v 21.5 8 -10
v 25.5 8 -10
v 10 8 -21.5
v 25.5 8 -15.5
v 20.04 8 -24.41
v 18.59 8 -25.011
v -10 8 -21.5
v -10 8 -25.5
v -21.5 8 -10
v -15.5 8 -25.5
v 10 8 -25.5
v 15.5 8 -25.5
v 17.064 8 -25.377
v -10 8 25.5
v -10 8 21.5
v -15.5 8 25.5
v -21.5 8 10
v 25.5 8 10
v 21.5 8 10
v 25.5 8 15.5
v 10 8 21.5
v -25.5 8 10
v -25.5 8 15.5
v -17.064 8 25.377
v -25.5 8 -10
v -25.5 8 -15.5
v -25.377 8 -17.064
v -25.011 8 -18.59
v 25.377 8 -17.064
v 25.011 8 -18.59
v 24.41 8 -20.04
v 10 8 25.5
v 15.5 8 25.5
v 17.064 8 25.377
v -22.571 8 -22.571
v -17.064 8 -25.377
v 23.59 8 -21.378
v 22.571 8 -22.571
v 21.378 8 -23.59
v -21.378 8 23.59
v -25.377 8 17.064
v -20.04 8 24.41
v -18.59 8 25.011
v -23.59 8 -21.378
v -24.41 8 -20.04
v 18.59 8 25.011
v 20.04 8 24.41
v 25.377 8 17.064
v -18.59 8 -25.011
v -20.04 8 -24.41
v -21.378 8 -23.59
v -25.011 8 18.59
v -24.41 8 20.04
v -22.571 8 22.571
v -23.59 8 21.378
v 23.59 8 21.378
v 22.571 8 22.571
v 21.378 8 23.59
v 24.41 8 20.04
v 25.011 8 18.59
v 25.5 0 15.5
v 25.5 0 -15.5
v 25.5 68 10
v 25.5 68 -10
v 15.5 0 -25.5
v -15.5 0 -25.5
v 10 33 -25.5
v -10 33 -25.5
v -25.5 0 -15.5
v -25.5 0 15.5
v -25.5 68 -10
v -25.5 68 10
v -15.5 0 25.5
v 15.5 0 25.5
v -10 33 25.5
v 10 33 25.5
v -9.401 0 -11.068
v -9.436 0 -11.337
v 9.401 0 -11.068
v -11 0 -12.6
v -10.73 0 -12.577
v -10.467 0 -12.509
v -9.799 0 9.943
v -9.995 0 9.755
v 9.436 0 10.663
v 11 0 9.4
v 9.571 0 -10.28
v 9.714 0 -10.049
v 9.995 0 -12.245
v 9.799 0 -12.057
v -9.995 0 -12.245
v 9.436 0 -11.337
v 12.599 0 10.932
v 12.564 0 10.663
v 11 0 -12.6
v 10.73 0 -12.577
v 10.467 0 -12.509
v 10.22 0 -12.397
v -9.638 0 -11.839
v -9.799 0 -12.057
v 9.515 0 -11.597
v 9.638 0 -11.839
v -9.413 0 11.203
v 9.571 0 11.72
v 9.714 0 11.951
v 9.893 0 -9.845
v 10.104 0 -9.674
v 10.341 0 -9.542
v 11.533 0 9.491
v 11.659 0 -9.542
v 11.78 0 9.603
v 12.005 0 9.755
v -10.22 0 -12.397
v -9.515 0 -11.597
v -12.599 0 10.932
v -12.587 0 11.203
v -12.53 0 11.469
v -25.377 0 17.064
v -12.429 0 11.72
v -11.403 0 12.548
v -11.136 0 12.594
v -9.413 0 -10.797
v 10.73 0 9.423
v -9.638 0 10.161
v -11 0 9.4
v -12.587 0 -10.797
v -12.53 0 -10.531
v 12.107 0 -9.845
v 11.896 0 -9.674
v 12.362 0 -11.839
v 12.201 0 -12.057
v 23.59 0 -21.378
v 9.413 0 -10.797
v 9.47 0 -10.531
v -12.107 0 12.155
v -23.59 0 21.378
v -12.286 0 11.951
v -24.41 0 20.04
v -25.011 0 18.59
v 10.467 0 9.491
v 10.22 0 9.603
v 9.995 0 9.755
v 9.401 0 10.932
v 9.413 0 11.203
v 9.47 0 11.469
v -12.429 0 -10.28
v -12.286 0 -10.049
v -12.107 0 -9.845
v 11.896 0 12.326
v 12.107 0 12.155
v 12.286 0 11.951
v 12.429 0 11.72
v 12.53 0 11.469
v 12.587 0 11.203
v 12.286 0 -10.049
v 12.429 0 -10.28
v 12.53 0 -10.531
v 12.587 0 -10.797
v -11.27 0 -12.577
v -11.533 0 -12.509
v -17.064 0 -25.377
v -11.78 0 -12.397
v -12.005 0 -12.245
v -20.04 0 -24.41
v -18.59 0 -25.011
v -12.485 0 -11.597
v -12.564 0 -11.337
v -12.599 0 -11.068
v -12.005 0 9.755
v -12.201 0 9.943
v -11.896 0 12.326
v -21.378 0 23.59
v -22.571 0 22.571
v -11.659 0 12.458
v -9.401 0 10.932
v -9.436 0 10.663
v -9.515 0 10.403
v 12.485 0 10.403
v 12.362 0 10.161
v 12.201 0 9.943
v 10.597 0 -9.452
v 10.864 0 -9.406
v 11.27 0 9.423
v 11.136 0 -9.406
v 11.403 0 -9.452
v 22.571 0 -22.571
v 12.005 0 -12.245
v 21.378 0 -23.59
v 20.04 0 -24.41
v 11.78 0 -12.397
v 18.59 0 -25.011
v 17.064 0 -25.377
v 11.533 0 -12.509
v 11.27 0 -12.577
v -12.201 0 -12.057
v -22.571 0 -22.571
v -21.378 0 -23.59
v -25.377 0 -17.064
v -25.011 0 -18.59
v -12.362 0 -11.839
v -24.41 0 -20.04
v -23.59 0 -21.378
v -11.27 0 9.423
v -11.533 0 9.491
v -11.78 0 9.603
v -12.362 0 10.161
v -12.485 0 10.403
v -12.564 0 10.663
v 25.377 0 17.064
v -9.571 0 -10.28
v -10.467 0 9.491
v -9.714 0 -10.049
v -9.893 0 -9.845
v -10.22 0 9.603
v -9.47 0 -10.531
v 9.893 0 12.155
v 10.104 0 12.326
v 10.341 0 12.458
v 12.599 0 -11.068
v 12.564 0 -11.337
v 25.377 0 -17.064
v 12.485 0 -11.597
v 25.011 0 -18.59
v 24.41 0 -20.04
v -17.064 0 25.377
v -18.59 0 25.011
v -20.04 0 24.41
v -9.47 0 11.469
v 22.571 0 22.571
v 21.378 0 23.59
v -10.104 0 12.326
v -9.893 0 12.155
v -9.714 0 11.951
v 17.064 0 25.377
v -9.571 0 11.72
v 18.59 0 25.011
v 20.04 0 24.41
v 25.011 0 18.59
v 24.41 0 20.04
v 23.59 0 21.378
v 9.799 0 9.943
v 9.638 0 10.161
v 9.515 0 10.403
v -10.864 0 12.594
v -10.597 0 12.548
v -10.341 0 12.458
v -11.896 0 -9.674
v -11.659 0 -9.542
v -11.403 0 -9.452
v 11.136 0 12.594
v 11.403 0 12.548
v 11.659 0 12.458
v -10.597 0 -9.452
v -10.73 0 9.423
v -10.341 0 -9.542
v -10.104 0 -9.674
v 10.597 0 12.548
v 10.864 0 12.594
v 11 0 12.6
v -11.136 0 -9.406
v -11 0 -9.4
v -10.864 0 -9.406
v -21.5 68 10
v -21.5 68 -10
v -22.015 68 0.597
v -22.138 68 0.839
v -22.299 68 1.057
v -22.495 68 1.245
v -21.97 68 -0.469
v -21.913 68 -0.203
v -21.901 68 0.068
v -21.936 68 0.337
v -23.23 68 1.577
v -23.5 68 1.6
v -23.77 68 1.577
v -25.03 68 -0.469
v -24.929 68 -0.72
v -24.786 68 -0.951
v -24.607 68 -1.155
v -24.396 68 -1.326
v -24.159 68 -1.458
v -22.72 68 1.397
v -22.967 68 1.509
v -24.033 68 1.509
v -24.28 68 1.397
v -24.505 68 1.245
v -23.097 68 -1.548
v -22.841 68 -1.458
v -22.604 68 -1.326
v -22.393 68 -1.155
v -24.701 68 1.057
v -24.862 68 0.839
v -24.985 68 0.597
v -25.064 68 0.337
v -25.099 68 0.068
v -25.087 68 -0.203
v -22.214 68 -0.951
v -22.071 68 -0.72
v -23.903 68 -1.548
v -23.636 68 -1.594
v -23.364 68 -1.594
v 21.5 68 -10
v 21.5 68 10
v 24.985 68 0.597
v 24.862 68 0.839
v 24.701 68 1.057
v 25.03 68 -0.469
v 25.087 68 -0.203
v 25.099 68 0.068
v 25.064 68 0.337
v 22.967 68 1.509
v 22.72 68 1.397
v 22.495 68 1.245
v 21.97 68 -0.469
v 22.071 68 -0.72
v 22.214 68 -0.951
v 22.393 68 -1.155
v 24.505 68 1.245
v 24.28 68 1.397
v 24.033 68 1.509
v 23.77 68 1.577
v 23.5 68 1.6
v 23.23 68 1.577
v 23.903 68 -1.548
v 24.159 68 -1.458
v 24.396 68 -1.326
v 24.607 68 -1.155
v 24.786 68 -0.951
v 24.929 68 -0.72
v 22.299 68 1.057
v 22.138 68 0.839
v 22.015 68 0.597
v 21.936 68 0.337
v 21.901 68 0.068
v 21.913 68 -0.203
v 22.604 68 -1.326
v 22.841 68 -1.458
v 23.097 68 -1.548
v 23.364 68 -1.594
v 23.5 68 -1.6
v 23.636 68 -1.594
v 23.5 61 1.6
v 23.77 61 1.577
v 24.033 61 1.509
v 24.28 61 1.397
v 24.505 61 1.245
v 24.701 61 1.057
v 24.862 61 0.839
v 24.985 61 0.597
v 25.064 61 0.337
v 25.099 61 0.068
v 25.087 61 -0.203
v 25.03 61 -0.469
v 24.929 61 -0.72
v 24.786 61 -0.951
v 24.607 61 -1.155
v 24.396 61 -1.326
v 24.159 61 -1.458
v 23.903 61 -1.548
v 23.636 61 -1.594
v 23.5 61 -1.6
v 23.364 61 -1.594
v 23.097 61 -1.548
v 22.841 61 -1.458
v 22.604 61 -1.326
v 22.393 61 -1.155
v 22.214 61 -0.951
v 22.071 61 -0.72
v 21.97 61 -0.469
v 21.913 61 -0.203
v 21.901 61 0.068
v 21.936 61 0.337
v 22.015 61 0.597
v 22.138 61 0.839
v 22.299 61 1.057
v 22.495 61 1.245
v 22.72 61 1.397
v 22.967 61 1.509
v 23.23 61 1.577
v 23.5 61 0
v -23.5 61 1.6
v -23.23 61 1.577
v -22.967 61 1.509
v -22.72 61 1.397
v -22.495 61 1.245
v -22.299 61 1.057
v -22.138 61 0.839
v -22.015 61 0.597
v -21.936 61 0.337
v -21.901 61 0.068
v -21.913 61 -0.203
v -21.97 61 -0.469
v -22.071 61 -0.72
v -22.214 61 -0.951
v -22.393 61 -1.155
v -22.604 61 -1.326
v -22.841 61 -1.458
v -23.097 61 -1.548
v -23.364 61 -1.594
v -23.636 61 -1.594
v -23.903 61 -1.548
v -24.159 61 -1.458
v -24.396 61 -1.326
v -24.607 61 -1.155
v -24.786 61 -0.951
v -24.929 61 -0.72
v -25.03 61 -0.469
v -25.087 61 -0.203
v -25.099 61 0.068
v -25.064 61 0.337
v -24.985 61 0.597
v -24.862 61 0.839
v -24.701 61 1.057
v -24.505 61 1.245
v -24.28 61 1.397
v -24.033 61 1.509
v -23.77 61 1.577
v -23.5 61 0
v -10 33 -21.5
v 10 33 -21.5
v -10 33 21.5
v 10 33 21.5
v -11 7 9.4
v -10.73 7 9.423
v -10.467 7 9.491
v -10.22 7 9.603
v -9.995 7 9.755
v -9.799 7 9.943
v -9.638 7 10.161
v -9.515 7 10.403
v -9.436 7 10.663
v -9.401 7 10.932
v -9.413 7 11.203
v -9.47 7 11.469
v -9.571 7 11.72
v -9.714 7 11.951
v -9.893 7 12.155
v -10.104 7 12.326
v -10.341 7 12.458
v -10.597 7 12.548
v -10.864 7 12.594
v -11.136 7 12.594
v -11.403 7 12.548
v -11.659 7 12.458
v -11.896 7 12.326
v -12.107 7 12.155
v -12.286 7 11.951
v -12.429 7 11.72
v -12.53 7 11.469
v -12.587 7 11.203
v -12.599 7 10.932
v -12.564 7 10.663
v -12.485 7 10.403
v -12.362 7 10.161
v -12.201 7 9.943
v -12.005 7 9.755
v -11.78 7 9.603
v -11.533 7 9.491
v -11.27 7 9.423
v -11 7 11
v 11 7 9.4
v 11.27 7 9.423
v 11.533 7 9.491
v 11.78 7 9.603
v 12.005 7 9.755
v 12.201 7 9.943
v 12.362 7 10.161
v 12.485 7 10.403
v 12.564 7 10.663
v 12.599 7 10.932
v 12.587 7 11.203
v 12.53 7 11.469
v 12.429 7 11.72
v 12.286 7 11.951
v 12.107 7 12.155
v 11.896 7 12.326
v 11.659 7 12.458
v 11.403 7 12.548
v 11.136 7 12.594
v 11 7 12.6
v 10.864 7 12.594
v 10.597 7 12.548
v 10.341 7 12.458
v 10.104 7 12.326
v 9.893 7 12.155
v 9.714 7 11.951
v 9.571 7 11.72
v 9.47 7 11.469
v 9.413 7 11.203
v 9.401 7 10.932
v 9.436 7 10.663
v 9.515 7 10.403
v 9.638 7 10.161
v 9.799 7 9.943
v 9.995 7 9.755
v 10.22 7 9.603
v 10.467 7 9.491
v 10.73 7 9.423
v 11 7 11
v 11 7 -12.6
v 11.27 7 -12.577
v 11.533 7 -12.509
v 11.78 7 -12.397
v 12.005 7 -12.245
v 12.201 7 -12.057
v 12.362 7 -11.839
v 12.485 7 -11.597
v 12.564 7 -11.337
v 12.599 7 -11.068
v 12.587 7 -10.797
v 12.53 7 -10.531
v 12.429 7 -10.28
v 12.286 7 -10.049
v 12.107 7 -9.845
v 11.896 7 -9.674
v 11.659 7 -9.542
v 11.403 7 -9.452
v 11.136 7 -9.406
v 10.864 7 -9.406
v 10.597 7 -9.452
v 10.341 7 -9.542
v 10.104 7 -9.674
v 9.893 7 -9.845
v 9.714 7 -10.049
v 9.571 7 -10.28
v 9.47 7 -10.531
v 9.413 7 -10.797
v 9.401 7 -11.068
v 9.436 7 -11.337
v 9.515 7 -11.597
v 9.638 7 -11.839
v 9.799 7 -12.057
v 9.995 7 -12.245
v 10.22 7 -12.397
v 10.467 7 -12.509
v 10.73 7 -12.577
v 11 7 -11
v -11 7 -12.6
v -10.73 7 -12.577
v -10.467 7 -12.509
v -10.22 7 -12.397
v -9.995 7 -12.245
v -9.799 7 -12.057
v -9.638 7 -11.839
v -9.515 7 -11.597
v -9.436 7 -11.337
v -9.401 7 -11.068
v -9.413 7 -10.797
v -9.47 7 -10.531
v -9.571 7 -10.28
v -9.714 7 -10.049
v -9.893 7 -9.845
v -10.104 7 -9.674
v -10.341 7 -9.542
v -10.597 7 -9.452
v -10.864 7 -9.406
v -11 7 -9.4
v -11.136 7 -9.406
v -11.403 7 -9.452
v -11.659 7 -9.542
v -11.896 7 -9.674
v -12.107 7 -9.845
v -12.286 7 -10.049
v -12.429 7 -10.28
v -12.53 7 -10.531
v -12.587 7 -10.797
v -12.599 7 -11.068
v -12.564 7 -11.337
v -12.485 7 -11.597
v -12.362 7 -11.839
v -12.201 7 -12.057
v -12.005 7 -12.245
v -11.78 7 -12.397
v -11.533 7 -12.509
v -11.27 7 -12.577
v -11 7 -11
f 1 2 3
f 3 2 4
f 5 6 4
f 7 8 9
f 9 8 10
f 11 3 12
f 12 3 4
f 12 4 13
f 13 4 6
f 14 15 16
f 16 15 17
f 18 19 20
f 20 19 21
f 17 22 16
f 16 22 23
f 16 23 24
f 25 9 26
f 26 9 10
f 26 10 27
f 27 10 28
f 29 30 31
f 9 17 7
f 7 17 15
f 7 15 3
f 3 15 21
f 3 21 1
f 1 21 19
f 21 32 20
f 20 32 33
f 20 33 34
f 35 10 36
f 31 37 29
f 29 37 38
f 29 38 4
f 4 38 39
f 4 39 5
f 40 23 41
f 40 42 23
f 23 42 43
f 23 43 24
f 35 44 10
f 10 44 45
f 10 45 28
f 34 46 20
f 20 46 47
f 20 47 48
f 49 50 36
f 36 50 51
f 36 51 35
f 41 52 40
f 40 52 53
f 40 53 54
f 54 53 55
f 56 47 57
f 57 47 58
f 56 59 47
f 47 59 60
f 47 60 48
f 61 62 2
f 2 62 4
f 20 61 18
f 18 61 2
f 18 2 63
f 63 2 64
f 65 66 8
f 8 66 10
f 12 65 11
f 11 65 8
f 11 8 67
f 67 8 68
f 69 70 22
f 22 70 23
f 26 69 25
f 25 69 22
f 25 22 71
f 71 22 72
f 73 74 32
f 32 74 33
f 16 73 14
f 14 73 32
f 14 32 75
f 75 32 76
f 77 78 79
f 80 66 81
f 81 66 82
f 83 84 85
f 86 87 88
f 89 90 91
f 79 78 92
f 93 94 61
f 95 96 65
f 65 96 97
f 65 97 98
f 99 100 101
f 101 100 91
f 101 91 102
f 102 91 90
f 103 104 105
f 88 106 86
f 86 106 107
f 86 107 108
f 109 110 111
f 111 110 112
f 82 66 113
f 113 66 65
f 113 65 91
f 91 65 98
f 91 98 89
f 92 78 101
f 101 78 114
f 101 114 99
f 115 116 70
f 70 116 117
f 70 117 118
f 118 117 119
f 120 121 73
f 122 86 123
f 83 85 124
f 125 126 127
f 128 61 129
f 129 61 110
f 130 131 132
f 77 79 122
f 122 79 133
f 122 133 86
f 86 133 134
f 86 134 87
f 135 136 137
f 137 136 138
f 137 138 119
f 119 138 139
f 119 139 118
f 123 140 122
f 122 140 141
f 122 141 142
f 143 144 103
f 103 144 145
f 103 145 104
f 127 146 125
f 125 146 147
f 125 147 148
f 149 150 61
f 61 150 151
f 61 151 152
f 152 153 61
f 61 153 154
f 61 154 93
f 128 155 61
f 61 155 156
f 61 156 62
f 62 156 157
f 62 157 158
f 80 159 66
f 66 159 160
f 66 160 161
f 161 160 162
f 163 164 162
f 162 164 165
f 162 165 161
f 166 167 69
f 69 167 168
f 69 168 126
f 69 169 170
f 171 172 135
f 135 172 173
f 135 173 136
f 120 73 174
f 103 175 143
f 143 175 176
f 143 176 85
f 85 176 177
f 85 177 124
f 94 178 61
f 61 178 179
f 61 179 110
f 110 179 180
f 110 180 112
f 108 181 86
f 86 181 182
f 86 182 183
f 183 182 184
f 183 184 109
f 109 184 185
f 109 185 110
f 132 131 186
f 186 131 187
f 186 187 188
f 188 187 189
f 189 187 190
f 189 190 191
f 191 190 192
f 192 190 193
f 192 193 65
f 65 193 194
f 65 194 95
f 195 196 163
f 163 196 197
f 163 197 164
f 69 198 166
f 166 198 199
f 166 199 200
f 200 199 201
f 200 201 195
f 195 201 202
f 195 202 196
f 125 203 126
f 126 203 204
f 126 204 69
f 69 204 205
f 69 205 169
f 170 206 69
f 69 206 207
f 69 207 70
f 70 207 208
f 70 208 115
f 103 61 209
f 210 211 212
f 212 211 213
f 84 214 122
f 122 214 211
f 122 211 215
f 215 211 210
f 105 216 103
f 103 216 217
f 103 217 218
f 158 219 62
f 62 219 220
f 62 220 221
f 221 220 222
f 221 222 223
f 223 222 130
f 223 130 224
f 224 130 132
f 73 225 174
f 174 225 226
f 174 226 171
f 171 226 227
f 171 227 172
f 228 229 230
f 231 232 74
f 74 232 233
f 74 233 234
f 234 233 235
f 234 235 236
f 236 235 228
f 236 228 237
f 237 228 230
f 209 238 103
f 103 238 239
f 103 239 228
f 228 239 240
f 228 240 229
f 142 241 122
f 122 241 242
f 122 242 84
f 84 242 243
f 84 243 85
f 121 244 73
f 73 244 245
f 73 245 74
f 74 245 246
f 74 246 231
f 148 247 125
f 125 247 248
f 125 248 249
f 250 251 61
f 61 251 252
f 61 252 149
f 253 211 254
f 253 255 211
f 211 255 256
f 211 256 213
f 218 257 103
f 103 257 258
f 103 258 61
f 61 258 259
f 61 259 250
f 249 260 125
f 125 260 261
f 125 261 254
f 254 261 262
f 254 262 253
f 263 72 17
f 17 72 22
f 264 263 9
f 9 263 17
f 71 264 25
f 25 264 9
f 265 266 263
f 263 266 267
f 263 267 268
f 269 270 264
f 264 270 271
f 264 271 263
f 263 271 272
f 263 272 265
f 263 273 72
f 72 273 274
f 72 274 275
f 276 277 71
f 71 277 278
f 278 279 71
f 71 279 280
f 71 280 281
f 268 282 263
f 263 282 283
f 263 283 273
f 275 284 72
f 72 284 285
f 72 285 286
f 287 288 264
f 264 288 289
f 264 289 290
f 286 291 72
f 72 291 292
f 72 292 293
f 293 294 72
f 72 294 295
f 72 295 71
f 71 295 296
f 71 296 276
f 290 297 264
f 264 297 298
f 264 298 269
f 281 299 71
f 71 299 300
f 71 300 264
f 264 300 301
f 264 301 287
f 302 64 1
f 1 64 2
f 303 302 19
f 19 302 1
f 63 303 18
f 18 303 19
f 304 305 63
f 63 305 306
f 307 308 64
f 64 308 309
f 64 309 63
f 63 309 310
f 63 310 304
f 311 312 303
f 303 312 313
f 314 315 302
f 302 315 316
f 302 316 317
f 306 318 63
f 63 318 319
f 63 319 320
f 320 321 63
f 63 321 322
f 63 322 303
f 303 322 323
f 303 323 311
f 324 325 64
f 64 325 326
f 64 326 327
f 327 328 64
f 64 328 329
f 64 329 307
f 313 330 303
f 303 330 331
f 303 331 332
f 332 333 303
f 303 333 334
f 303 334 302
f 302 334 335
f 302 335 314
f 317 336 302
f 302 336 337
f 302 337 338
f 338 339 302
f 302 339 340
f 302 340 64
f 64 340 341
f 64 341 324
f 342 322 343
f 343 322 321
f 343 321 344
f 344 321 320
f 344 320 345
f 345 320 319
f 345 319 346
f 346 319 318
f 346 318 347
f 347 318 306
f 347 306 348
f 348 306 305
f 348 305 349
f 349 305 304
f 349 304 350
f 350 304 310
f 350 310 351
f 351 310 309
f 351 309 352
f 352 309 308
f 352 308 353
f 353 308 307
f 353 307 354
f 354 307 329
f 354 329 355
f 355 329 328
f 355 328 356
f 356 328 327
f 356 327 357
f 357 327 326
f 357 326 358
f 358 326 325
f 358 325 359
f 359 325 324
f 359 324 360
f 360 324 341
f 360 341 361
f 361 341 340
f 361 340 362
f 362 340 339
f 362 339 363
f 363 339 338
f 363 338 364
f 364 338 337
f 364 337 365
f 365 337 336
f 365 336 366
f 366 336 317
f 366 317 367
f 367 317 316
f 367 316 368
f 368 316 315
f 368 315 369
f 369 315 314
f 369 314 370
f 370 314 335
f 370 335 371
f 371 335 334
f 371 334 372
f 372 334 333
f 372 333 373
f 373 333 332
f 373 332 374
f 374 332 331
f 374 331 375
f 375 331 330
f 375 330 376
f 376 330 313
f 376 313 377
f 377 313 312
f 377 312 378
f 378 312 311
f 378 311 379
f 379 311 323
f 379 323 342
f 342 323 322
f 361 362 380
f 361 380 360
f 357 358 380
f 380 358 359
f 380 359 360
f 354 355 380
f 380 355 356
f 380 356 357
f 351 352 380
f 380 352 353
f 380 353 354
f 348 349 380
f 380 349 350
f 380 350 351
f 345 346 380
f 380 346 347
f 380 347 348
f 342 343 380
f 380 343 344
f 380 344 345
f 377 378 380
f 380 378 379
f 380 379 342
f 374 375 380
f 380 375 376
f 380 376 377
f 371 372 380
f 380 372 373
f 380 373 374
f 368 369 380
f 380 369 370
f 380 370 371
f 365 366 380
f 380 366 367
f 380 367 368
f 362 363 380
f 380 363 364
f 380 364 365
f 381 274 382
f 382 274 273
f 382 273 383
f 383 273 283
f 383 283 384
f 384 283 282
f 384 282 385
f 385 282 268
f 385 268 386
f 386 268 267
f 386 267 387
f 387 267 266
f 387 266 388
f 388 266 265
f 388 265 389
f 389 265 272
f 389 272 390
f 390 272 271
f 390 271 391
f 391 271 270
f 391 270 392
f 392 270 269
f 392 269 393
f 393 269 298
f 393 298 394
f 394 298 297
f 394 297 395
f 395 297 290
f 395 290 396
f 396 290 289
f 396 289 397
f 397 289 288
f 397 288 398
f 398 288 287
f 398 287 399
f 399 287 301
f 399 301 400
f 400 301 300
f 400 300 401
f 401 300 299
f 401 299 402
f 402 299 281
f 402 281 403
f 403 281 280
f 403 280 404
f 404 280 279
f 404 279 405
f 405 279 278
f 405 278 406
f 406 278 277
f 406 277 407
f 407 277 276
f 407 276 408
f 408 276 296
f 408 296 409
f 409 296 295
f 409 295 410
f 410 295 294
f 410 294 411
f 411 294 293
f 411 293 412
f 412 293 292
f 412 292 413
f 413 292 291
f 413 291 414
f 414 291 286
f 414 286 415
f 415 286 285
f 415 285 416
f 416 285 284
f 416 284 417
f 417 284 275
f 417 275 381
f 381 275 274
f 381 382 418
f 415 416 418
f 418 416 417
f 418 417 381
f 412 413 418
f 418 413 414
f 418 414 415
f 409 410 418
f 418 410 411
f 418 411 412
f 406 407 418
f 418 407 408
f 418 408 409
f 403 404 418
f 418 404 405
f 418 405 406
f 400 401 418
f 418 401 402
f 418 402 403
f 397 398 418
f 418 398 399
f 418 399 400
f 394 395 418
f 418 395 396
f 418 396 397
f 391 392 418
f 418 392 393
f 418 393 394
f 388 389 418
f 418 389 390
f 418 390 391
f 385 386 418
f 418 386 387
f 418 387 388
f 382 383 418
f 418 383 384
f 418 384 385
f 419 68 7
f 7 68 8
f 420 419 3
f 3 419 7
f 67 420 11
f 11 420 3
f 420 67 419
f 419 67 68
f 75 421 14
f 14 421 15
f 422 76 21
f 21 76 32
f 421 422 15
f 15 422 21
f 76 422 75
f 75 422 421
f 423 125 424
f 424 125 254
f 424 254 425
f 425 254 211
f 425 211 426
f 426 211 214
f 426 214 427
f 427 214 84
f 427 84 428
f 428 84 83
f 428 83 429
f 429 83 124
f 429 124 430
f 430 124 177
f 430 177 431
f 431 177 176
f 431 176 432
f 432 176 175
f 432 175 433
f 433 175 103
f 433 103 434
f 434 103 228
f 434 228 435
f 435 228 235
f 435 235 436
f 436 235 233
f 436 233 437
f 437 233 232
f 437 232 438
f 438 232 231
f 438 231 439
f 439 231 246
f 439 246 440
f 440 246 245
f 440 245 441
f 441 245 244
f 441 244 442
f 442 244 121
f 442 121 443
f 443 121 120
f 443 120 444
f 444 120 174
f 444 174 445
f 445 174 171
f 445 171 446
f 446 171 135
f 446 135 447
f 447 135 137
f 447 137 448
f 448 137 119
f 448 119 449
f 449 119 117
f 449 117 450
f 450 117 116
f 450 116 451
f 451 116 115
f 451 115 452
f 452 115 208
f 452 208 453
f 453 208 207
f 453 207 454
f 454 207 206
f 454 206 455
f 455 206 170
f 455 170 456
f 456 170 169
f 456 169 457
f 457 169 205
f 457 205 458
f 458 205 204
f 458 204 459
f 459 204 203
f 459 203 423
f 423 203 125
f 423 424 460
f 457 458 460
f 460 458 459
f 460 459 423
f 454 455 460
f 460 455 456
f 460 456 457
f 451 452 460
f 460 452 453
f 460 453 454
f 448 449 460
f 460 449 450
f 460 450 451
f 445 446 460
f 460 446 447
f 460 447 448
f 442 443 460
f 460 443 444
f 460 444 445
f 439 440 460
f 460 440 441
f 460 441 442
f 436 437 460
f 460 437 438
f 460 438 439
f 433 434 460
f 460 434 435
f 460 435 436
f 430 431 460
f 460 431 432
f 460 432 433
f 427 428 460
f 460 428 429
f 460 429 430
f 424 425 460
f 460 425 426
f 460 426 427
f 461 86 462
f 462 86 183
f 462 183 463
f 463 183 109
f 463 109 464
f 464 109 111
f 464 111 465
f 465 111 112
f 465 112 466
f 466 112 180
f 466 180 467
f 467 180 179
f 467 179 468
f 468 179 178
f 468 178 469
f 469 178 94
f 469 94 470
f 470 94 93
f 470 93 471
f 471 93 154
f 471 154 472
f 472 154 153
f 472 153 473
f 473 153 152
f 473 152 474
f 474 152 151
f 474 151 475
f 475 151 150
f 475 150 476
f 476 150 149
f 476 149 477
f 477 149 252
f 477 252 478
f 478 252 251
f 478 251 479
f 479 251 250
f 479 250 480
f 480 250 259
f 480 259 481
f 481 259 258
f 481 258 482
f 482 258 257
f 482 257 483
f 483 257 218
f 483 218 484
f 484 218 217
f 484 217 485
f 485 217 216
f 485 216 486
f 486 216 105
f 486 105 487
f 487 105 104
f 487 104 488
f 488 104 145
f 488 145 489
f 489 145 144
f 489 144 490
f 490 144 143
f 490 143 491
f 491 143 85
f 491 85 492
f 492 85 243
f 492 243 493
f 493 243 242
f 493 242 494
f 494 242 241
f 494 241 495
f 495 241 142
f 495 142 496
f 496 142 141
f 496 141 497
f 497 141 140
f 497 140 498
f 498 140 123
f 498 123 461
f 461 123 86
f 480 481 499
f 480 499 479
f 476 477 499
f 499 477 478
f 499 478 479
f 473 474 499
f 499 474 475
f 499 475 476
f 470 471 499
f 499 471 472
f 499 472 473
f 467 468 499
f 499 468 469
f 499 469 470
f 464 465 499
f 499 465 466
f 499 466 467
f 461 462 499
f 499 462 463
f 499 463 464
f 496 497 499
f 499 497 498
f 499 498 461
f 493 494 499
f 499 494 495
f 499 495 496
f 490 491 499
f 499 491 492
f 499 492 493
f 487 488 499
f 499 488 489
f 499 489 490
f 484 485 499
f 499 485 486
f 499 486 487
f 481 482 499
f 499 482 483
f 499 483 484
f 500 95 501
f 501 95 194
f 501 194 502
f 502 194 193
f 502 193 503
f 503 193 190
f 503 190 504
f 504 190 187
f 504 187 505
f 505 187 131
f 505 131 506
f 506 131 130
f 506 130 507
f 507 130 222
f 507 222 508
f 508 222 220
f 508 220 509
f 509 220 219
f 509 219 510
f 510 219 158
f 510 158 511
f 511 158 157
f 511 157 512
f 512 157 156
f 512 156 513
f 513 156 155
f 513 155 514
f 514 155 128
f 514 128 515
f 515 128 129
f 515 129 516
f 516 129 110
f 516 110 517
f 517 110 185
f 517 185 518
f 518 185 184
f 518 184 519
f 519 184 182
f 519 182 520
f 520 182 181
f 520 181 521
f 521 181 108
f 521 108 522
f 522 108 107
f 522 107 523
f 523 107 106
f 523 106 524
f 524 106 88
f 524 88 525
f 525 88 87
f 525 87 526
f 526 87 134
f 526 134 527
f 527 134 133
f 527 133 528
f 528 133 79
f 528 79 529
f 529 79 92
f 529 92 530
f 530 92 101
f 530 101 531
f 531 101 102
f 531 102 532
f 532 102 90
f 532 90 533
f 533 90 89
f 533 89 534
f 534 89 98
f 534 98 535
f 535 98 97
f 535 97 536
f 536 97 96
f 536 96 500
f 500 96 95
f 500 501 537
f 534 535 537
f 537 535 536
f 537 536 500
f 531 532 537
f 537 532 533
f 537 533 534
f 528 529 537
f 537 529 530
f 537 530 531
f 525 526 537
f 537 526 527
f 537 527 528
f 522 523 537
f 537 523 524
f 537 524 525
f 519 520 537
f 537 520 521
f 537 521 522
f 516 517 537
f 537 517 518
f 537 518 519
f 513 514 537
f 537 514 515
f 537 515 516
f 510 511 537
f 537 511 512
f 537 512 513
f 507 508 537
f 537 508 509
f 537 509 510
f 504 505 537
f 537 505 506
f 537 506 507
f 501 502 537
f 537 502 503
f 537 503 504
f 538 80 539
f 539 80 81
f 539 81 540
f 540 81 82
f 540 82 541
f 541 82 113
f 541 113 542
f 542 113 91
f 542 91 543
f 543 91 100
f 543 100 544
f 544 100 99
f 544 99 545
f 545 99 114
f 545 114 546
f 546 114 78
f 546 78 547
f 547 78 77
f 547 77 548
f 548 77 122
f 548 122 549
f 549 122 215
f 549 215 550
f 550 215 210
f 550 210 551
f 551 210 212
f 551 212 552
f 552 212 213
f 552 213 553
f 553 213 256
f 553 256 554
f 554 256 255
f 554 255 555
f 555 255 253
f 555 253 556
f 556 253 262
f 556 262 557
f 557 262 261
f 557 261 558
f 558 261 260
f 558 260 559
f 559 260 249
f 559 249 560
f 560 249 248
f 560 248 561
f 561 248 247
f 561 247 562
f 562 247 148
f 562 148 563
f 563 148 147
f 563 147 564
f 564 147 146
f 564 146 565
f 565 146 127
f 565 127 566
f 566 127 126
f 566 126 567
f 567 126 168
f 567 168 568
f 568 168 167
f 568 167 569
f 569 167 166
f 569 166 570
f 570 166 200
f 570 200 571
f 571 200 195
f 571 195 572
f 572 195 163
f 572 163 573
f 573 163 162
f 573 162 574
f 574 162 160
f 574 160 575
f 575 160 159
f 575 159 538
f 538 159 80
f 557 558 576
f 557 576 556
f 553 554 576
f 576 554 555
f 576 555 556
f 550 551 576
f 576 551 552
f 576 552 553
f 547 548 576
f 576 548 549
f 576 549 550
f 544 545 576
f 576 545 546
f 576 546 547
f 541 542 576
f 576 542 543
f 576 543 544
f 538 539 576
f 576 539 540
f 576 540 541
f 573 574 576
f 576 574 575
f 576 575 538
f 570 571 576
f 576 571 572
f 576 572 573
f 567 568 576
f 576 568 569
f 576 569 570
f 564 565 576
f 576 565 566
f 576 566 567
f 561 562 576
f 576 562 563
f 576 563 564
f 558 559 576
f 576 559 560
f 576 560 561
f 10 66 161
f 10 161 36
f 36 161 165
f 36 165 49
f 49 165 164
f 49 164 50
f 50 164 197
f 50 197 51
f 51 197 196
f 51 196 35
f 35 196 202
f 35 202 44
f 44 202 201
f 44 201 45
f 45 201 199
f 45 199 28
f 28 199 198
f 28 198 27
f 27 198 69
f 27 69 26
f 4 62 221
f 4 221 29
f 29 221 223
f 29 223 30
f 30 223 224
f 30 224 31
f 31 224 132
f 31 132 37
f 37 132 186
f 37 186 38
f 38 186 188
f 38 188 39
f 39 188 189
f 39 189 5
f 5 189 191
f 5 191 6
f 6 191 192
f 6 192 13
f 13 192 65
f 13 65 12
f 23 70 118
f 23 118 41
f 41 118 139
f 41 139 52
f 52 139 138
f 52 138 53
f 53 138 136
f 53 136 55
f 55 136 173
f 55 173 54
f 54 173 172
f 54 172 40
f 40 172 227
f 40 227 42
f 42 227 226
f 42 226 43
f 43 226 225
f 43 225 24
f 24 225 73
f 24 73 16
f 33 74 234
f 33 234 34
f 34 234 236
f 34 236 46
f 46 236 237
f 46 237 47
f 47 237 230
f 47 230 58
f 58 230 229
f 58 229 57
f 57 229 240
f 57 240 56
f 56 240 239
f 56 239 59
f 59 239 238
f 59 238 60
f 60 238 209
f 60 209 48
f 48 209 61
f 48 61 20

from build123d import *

# Parameters (mm, degrees)
ESBO_O1_W                = 51
ESBO_O1_H                = 51
RESSALTO_EXTRUS_O1_DEPTH = 8
ESBO_O2_W                = 4
ESBO_O2_H                = 20
RESSALTO_EXTRUS_O2_DEPTH = 60
ESBO_O3_R                = 1.6
CORTE_EXTRUS_O1_DEPTH    = 7
ESBO_O4_W                = 20
ESBO_O4_H                = 4
RESSALTO_EXTRUS_O3_DEPTH = 25
ESBO_O5_R                = 1.6
CORTE_EXTRUS_O2_DEPTH    = 7
FILETE2_R                = 10


with BuildPart() as part:
    # Esboço1 → Ressalto-extrusão1 (new body)
    with BuildSketch(Plane(origin=(0, 0, 0), x_dir=(1, 0, 0), z_dir=(0, 1, 0))):
        Rectangle(ESBO_O1_W, ESBO_O1_H)
    extrude(amount=RESSALTO_EXTRUS_O1_DEPTH)

    # Esboço2 → Ressalto-extrusão2 (add)
    with BuildSketch(Plane(origin=(0, 8, 0), x_dir=(1, 0, 0), z_dir=(0, 1, 0))):
        with Locations((-23.5, 0)):
            Rectangle(ESBO_O2_W, ESBO_O2_H)
        with Locations((23.5, 0)):
            Rectangle(ESBO_O2_W, ESBO_O2_H)
    extrude(amount=RESSALTO_EXTRUS_O2_DEPTH)

    # Esboço3 → Corte-extrusão1 (cut)
    with BuildSketch(Plane(origin=(0, 68, 0), x_dir=(1, 0, 0), z_dir=(0, 1, 0))):
        with Locations(Location((-23.5, 0, 0), (0, 0, 270))):
            Circle(ESBO_O3_R)
        with Locations(Location((23.5, 0, 0), (0, 0, 90))):
            Circle(ESBO_O3_R)
    extrude(amount=-CORTE_EXTRUS_O1_DEPTH, mode=Mode.SUBTRACT)

    # Esboço4 → Ressalto-extrusão3 (add)
    with BuildSketch(Plane(origin=(0, 8, 0), x_dir=(1, 0, 0), z_dir=(0, 1, 0))):
        with Locations((0, 23.5)):
            Rectangle(ESBO_O4_W, ESBO_O4_H)
        with Locations((0, -23.5)):
            Rectangle(ESBO_O4_W, ESBO_O4_H)
    extrude(amount=RESSALTO_EXTRUS_O3_DEPTH)

    # Esboço5 → Corte-extrusão2 (cut)
    with BuildSketch(Plane.XZ):
        with Locations(Location((-11, 11, 0), (0, 0, 270))):
            Circle(ESBO_O5_R)
        with Locations(Location((11, 11, 0), (0, 0, 90))):
            Circle(ESBO_O5_R)
        with Locations(Location((11, -11, 0), (0, 0, 270))):
            Circle(ESBO_O5_R)
        with Locations(Location((-11, -11, 0), (0, 0, 90))):
            Circle(ESBO_O5_R)
    extrude(amount=-CORTE_EXTRUS_O2_DEPTH, mode=Mode.SUBTRACT)

    # Filete2
    filete2_edges = [part.edges().sort_by_distance(p)[0] for p in [
        (25.5, 4, 25.5),
        (-25.5, 4, 25.5),
        (-25.5, 4, -25.5),
        (25.5, 4, -25.5),
    ]]
    fillet(filete2_edges, radius=FILETE2_R)


solid = part.part
